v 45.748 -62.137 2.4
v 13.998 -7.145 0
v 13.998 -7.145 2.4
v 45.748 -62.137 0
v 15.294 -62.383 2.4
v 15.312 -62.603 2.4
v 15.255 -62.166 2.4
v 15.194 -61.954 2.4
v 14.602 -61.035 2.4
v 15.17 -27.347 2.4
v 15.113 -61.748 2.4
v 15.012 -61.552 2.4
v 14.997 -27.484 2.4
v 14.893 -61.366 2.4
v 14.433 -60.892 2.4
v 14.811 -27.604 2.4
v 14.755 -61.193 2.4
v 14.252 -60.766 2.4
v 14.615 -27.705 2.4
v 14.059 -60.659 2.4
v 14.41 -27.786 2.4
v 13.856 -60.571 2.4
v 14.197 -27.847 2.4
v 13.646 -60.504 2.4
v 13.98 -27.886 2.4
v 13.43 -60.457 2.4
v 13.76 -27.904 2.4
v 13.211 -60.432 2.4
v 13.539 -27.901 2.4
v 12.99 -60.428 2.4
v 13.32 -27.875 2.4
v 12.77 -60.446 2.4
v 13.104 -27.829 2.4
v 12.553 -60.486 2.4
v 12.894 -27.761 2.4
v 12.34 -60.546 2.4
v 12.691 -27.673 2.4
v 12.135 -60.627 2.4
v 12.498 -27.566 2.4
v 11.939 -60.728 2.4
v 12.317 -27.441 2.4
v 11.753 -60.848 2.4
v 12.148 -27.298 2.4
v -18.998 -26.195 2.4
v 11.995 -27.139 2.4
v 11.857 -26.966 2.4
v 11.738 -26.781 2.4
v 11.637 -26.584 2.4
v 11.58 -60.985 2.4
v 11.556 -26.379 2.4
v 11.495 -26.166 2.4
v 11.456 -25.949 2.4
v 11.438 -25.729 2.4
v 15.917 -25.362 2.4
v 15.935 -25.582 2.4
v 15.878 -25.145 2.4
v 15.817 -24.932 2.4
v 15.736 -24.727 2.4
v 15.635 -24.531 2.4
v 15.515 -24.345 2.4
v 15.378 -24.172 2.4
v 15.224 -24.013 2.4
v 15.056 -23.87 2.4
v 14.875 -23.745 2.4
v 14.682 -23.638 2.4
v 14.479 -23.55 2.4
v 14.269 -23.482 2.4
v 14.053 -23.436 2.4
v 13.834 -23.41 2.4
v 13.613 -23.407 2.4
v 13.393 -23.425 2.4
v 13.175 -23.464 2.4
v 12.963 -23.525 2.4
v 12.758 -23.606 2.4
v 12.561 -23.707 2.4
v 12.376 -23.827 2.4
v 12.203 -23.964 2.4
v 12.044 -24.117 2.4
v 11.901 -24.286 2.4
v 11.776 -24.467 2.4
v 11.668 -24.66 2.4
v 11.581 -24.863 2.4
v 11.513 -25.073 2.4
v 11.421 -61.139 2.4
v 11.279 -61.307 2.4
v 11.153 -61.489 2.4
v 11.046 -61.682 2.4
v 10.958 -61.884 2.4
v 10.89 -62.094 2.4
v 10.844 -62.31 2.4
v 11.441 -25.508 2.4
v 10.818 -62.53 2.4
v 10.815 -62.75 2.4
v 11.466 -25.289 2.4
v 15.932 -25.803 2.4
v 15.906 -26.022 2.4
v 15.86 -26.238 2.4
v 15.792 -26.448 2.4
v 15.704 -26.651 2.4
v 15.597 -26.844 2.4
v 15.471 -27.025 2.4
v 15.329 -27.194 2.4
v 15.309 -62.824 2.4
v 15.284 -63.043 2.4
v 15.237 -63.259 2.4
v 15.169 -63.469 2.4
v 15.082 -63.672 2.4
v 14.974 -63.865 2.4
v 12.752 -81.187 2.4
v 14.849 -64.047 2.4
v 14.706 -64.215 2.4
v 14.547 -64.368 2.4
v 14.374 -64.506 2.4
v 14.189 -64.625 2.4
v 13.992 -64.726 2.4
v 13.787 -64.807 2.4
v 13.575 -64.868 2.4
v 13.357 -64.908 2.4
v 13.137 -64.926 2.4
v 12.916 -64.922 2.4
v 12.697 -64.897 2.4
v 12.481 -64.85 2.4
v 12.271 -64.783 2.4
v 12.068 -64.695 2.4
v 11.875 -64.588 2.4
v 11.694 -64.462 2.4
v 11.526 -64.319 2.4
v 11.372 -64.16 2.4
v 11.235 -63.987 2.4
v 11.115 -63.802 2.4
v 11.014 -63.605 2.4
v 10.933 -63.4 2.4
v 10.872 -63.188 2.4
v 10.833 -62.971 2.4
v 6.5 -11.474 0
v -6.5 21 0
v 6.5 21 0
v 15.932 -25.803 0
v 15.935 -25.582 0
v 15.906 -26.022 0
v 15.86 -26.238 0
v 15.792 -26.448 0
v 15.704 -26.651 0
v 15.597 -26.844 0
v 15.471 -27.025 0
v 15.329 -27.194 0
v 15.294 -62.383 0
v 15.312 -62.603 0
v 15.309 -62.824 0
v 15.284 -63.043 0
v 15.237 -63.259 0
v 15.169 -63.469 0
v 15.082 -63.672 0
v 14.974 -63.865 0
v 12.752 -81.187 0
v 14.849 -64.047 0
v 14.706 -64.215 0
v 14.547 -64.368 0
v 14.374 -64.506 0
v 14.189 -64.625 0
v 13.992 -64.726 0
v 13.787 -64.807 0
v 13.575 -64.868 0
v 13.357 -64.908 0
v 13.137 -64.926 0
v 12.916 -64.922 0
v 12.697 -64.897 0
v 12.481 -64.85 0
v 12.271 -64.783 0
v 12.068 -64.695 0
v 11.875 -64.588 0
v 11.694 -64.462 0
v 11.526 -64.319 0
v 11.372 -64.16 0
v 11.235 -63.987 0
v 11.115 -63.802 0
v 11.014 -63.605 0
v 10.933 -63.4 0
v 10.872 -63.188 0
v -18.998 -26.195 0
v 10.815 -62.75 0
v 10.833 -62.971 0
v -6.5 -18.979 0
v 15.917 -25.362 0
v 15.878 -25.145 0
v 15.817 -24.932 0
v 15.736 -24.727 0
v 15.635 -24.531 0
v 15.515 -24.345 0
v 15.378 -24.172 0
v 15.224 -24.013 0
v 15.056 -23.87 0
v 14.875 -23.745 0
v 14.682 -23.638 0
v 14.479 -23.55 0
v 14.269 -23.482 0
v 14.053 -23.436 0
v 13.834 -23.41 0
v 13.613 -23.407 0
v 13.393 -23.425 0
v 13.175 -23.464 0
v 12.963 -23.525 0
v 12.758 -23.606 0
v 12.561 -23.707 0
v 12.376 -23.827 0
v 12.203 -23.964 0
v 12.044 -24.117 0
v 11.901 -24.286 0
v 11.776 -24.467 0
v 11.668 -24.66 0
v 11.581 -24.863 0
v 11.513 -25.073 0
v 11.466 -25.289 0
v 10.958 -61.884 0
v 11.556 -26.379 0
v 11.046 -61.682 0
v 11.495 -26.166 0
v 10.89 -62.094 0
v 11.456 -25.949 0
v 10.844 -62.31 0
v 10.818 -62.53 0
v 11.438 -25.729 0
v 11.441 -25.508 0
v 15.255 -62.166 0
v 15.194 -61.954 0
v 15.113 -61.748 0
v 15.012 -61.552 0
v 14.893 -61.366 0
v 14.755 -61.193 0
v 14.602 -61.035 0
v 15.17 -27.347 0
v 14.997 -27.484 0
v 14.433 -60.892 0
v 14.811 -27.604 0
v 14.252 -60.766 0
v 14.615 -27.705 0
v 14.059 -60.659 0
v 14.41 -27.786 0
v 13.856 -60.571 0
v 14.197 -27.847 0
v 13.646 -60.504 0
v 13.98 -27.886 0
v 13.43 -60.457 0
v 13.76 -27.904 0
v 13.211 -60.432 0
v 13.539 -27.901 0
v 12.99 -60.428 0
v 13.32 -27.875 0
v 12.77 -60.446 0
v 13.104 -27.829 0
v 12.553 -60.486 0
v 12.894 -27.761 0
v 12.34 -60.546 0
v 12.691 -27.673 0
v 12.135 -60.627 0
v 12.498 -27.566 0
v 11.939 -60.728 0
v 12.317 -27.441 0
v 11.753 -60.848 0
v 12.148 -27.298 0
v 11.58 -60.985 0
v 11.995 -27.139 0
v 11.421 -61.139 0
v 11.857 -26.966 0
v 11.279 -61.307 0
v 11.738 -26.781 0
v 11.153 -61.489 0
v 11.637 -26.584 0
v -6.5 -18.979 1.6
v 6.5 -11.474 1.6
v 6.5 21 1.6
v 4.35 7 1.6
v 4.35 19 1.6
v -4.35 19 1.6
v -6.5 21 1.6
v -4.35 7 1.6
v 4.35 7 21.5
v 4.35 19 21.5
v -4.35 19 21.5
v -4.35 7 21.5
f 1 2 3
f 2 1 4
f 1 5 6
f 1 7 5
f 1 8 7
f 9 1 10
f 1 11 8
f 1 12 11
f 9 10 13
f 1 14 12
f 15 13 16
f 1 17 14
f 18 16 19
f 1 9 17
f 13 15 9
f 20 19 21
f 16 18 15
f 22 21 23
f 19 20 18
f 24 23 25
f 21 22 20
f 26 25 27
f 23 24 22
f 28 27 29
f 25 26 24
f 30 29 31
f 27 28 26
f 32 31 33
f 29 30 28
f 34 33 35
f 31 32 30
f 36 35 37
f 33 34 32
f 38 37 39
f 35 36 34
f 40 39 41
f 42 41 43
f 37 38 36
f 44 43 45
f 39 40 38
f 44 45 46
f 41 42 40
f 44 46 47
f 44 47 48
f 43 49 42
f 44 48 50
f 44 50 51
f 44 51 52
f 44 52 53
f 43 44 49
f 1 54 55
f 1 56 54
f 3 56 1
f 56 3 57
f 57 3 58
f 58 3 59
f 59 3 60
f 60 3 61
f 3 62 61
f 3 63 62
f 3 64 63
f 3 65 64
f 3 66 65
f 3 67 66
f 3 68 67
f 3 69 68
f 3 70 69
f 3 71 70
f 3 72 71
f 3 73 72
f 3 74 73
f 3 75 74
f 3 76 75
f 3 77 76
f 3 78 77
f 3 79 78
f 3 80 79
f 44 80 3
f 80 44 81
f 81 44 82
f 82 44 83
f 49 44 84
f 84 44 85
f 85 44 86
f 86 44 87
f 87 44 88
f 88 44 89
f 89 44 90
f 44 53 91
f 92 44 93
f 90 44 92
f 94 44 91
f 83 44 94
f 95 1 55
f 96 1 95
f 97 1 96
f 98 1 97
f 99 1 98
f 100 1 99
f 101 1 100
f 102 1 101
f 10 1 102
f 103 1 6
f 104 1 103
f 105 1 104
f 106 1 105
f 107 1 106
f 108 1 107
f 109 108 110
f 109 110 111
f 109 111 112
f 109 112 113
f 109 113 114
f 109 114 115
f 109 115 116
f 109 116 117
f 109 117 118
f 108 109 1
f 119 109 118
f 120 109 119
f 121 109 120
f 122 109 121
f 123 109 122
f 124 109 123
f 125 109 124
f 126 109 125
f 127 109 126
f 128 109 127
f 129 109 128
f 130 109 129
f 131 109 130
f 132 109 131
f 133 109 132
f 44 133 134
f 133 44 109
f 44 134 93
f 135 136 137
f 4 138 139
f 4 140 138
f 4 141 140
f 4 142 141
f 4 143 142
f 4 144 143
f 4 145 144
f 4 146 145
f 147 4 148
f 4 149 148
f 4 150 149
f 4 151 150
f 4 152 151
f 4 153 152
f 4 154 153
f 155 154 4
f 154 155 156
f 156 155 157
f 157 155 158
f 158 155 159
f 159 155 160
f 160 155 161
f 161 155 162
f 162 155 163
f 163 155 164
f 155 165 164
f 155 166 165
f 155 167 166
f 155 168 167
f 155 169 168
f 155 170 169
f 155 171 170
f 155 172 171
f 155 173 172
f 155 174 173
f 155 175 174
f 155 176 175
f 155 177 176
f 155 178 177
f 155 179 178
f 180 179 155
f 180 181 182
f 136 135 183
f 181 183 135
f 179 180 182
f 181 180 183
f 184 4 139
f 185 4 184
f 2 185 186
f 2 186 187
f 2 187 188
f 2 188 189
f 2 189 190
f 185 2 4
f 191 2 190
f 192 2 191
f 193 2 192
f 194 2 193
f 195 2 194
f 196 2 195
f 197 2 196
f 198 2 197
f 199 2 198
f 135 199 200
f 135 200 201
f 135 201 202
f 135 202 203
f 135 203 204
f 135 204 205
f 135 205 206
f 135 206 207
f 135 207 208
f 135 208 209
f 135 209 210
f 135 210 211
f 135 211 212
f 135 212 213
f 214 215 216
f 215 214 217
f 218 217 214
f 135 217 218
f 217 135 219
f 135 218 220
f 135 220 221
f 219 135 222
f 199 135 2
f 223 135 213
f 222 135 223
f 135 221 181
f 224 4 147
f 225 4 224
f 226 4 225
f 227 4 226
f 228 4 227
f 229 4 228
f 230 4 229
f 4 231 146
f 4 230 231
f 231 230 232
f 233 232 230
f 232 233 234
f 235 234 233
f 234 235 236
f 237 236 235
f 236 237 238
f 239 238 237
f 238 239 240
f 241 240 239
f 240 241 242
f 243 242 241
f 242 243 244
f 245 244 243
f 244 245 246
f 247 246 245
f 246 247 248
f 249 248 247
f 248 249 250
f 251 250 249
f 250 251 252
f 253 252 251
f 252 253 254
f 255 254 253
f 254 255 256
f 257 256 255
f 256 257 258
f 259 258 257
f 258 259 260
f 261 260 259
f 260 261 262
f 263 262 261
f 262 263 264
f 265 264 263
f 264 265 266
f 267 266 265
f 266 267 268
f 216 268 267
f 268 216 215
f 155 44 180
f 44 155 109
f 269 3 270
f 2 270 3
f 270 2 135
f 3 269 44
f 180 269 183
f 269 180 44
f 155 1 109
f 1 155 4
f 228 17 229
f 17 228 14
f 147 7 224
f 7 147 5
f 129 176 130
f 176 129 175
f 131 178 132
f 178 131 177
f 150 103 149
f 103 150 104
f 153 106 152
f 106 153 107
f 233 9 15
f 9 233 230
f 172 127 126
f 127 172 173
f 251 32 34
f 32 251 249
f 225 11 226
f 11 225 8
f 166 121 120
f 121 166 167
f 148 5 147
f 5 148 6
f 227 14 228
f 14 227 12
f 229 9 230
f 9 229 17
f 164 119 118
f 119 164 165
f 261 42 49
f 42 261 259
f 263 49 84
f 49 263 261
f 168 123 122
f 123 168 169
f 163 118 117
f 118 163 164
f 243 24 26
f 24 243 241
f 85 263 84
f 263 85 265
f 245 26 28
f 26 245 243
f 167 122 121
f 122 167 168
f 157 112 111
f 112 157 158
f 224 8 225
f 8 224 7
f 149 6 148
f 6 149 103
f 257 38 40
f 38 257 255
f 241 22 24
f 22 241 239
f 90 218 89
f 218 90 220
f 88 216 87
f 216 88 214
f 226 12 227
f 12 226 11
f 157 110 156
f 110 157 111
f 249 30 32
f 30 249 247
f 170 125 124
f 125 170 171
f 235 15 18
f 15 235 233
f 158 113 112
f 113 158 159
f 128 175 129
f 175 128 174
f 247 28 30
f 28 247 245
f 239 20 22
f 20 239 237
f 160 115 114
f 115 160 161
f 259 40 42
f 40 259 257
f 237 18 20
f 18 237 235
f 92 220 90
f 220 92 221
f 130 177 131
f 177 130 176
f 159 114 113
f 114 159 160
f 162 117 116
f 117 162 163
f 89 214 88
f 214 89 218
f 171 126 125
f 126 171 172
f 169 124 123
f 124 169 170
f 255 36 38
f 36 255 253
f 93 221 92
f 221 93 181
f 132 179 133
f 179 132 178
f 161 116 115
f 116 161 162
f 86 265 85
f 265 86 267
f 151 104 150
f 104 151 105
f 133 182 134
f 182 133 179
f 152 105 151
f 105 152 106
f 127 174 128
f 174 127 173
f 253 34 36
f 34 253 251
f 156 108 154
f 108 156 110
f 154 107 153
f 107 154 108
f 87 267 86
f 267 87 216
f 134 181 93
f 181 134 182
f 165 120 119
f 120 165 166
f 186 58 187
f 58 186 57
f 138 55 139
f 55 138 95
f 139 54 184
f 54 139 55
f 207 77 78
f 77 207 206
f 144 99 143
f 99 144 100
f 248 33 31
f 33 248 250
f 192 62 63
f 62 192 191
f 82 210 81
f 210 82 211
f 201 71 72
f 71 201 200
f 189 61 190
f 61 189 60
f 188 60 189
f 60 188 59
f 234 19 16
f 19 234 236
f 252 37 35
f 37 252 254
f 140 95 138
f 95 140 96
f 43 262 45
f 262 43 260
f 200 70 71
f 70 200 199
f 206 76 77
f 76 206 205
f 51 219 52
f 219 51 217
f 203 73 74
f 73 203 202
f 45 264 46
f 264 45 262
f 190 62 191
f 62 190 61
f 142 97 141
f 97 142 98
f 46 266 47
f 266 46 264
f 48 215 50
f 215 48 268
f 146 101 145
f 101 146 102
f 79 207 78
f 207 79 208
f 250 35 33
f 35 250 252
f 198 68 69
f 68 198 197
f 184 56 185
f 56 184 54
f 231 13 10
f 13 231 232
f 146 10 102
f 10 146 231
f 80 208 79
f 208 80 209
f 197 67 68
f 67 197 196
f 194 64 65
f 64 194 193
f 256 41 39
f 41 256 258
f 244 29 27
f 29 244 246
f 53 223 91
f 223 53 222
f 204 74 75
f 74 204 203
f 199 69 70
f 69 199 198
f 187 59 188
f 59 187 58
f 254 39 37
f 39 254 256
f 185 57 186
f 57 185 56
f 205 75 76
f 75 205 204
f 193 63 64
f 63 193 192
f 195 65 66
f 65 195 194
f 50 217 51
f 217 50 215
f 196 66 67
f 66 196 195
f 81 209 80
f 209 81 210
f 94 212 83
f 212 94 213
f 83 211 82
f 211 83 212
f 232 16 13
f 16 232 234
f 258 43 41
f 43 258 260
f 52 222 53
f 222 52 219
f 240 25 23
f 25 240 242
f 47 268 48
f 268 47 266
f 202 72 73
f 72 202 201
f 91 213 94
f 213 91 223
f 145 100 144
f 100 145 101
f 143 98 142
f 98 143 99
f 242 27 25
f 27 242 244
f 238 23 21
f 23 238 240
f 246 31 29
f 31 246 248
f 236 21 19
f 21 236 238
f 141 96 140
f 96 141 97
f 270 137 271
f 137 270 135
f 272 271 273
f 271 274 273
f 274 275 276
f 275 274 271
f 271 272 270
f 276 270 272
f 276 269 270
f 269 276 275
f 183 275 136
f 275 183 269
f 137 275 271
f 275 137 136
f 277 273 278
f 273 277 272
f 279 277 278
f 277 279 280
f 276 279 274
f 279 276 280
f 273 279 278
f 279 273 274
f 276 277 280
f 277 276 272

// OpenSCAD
$fn = 64;
e = 0.1;

function mm(x) = (x)*25.4;

prong_x = 8.7;
prong_y = 12;
prong_z = 20;

plate_x = 13;
plate_y = 42;
plate_z = 1.6;

plate_ang = 30;

prong_dy = (plate_y/2-prong_y/2)-2;

mount_x = mm(1.5);
mount_y = mm(2.5);
mount_z = 2.4;
mount_dy = -(mount_y/2+plate_y/2-e);

hole_dia = 4.5;

module hole_at(x,y) {
     translate( [x, y, -e])
	  cylinder( h=10, d=hole_dia);
}

module mount_top() {
     translate( [-mount_x/2, -mount_y+5, 0]) {
	  difference() {
	       cube( [mount_x, mount_y, mount_z]);
	       hole_at( mount_x*0.25, mount_y*0.25);
	       hole_at( mount_x*0.75, mount_y*0.75);
	  }
     }
}

module plate() {
     translate( [-plate_x/2, -plate_y/2, 0])
	  cube( [plate_x, plate_y, plate_z]);
     translate( [-prong_x/2, -prong_y/2+prong_dy, plate_z-e])
	  cube( [prong_x, prong_y, prong_z]);
	  translate( [0, -plate_y/2, 0])
     rotate( [0, 0, plate_ang])
	  mount_top();
}


plate();
